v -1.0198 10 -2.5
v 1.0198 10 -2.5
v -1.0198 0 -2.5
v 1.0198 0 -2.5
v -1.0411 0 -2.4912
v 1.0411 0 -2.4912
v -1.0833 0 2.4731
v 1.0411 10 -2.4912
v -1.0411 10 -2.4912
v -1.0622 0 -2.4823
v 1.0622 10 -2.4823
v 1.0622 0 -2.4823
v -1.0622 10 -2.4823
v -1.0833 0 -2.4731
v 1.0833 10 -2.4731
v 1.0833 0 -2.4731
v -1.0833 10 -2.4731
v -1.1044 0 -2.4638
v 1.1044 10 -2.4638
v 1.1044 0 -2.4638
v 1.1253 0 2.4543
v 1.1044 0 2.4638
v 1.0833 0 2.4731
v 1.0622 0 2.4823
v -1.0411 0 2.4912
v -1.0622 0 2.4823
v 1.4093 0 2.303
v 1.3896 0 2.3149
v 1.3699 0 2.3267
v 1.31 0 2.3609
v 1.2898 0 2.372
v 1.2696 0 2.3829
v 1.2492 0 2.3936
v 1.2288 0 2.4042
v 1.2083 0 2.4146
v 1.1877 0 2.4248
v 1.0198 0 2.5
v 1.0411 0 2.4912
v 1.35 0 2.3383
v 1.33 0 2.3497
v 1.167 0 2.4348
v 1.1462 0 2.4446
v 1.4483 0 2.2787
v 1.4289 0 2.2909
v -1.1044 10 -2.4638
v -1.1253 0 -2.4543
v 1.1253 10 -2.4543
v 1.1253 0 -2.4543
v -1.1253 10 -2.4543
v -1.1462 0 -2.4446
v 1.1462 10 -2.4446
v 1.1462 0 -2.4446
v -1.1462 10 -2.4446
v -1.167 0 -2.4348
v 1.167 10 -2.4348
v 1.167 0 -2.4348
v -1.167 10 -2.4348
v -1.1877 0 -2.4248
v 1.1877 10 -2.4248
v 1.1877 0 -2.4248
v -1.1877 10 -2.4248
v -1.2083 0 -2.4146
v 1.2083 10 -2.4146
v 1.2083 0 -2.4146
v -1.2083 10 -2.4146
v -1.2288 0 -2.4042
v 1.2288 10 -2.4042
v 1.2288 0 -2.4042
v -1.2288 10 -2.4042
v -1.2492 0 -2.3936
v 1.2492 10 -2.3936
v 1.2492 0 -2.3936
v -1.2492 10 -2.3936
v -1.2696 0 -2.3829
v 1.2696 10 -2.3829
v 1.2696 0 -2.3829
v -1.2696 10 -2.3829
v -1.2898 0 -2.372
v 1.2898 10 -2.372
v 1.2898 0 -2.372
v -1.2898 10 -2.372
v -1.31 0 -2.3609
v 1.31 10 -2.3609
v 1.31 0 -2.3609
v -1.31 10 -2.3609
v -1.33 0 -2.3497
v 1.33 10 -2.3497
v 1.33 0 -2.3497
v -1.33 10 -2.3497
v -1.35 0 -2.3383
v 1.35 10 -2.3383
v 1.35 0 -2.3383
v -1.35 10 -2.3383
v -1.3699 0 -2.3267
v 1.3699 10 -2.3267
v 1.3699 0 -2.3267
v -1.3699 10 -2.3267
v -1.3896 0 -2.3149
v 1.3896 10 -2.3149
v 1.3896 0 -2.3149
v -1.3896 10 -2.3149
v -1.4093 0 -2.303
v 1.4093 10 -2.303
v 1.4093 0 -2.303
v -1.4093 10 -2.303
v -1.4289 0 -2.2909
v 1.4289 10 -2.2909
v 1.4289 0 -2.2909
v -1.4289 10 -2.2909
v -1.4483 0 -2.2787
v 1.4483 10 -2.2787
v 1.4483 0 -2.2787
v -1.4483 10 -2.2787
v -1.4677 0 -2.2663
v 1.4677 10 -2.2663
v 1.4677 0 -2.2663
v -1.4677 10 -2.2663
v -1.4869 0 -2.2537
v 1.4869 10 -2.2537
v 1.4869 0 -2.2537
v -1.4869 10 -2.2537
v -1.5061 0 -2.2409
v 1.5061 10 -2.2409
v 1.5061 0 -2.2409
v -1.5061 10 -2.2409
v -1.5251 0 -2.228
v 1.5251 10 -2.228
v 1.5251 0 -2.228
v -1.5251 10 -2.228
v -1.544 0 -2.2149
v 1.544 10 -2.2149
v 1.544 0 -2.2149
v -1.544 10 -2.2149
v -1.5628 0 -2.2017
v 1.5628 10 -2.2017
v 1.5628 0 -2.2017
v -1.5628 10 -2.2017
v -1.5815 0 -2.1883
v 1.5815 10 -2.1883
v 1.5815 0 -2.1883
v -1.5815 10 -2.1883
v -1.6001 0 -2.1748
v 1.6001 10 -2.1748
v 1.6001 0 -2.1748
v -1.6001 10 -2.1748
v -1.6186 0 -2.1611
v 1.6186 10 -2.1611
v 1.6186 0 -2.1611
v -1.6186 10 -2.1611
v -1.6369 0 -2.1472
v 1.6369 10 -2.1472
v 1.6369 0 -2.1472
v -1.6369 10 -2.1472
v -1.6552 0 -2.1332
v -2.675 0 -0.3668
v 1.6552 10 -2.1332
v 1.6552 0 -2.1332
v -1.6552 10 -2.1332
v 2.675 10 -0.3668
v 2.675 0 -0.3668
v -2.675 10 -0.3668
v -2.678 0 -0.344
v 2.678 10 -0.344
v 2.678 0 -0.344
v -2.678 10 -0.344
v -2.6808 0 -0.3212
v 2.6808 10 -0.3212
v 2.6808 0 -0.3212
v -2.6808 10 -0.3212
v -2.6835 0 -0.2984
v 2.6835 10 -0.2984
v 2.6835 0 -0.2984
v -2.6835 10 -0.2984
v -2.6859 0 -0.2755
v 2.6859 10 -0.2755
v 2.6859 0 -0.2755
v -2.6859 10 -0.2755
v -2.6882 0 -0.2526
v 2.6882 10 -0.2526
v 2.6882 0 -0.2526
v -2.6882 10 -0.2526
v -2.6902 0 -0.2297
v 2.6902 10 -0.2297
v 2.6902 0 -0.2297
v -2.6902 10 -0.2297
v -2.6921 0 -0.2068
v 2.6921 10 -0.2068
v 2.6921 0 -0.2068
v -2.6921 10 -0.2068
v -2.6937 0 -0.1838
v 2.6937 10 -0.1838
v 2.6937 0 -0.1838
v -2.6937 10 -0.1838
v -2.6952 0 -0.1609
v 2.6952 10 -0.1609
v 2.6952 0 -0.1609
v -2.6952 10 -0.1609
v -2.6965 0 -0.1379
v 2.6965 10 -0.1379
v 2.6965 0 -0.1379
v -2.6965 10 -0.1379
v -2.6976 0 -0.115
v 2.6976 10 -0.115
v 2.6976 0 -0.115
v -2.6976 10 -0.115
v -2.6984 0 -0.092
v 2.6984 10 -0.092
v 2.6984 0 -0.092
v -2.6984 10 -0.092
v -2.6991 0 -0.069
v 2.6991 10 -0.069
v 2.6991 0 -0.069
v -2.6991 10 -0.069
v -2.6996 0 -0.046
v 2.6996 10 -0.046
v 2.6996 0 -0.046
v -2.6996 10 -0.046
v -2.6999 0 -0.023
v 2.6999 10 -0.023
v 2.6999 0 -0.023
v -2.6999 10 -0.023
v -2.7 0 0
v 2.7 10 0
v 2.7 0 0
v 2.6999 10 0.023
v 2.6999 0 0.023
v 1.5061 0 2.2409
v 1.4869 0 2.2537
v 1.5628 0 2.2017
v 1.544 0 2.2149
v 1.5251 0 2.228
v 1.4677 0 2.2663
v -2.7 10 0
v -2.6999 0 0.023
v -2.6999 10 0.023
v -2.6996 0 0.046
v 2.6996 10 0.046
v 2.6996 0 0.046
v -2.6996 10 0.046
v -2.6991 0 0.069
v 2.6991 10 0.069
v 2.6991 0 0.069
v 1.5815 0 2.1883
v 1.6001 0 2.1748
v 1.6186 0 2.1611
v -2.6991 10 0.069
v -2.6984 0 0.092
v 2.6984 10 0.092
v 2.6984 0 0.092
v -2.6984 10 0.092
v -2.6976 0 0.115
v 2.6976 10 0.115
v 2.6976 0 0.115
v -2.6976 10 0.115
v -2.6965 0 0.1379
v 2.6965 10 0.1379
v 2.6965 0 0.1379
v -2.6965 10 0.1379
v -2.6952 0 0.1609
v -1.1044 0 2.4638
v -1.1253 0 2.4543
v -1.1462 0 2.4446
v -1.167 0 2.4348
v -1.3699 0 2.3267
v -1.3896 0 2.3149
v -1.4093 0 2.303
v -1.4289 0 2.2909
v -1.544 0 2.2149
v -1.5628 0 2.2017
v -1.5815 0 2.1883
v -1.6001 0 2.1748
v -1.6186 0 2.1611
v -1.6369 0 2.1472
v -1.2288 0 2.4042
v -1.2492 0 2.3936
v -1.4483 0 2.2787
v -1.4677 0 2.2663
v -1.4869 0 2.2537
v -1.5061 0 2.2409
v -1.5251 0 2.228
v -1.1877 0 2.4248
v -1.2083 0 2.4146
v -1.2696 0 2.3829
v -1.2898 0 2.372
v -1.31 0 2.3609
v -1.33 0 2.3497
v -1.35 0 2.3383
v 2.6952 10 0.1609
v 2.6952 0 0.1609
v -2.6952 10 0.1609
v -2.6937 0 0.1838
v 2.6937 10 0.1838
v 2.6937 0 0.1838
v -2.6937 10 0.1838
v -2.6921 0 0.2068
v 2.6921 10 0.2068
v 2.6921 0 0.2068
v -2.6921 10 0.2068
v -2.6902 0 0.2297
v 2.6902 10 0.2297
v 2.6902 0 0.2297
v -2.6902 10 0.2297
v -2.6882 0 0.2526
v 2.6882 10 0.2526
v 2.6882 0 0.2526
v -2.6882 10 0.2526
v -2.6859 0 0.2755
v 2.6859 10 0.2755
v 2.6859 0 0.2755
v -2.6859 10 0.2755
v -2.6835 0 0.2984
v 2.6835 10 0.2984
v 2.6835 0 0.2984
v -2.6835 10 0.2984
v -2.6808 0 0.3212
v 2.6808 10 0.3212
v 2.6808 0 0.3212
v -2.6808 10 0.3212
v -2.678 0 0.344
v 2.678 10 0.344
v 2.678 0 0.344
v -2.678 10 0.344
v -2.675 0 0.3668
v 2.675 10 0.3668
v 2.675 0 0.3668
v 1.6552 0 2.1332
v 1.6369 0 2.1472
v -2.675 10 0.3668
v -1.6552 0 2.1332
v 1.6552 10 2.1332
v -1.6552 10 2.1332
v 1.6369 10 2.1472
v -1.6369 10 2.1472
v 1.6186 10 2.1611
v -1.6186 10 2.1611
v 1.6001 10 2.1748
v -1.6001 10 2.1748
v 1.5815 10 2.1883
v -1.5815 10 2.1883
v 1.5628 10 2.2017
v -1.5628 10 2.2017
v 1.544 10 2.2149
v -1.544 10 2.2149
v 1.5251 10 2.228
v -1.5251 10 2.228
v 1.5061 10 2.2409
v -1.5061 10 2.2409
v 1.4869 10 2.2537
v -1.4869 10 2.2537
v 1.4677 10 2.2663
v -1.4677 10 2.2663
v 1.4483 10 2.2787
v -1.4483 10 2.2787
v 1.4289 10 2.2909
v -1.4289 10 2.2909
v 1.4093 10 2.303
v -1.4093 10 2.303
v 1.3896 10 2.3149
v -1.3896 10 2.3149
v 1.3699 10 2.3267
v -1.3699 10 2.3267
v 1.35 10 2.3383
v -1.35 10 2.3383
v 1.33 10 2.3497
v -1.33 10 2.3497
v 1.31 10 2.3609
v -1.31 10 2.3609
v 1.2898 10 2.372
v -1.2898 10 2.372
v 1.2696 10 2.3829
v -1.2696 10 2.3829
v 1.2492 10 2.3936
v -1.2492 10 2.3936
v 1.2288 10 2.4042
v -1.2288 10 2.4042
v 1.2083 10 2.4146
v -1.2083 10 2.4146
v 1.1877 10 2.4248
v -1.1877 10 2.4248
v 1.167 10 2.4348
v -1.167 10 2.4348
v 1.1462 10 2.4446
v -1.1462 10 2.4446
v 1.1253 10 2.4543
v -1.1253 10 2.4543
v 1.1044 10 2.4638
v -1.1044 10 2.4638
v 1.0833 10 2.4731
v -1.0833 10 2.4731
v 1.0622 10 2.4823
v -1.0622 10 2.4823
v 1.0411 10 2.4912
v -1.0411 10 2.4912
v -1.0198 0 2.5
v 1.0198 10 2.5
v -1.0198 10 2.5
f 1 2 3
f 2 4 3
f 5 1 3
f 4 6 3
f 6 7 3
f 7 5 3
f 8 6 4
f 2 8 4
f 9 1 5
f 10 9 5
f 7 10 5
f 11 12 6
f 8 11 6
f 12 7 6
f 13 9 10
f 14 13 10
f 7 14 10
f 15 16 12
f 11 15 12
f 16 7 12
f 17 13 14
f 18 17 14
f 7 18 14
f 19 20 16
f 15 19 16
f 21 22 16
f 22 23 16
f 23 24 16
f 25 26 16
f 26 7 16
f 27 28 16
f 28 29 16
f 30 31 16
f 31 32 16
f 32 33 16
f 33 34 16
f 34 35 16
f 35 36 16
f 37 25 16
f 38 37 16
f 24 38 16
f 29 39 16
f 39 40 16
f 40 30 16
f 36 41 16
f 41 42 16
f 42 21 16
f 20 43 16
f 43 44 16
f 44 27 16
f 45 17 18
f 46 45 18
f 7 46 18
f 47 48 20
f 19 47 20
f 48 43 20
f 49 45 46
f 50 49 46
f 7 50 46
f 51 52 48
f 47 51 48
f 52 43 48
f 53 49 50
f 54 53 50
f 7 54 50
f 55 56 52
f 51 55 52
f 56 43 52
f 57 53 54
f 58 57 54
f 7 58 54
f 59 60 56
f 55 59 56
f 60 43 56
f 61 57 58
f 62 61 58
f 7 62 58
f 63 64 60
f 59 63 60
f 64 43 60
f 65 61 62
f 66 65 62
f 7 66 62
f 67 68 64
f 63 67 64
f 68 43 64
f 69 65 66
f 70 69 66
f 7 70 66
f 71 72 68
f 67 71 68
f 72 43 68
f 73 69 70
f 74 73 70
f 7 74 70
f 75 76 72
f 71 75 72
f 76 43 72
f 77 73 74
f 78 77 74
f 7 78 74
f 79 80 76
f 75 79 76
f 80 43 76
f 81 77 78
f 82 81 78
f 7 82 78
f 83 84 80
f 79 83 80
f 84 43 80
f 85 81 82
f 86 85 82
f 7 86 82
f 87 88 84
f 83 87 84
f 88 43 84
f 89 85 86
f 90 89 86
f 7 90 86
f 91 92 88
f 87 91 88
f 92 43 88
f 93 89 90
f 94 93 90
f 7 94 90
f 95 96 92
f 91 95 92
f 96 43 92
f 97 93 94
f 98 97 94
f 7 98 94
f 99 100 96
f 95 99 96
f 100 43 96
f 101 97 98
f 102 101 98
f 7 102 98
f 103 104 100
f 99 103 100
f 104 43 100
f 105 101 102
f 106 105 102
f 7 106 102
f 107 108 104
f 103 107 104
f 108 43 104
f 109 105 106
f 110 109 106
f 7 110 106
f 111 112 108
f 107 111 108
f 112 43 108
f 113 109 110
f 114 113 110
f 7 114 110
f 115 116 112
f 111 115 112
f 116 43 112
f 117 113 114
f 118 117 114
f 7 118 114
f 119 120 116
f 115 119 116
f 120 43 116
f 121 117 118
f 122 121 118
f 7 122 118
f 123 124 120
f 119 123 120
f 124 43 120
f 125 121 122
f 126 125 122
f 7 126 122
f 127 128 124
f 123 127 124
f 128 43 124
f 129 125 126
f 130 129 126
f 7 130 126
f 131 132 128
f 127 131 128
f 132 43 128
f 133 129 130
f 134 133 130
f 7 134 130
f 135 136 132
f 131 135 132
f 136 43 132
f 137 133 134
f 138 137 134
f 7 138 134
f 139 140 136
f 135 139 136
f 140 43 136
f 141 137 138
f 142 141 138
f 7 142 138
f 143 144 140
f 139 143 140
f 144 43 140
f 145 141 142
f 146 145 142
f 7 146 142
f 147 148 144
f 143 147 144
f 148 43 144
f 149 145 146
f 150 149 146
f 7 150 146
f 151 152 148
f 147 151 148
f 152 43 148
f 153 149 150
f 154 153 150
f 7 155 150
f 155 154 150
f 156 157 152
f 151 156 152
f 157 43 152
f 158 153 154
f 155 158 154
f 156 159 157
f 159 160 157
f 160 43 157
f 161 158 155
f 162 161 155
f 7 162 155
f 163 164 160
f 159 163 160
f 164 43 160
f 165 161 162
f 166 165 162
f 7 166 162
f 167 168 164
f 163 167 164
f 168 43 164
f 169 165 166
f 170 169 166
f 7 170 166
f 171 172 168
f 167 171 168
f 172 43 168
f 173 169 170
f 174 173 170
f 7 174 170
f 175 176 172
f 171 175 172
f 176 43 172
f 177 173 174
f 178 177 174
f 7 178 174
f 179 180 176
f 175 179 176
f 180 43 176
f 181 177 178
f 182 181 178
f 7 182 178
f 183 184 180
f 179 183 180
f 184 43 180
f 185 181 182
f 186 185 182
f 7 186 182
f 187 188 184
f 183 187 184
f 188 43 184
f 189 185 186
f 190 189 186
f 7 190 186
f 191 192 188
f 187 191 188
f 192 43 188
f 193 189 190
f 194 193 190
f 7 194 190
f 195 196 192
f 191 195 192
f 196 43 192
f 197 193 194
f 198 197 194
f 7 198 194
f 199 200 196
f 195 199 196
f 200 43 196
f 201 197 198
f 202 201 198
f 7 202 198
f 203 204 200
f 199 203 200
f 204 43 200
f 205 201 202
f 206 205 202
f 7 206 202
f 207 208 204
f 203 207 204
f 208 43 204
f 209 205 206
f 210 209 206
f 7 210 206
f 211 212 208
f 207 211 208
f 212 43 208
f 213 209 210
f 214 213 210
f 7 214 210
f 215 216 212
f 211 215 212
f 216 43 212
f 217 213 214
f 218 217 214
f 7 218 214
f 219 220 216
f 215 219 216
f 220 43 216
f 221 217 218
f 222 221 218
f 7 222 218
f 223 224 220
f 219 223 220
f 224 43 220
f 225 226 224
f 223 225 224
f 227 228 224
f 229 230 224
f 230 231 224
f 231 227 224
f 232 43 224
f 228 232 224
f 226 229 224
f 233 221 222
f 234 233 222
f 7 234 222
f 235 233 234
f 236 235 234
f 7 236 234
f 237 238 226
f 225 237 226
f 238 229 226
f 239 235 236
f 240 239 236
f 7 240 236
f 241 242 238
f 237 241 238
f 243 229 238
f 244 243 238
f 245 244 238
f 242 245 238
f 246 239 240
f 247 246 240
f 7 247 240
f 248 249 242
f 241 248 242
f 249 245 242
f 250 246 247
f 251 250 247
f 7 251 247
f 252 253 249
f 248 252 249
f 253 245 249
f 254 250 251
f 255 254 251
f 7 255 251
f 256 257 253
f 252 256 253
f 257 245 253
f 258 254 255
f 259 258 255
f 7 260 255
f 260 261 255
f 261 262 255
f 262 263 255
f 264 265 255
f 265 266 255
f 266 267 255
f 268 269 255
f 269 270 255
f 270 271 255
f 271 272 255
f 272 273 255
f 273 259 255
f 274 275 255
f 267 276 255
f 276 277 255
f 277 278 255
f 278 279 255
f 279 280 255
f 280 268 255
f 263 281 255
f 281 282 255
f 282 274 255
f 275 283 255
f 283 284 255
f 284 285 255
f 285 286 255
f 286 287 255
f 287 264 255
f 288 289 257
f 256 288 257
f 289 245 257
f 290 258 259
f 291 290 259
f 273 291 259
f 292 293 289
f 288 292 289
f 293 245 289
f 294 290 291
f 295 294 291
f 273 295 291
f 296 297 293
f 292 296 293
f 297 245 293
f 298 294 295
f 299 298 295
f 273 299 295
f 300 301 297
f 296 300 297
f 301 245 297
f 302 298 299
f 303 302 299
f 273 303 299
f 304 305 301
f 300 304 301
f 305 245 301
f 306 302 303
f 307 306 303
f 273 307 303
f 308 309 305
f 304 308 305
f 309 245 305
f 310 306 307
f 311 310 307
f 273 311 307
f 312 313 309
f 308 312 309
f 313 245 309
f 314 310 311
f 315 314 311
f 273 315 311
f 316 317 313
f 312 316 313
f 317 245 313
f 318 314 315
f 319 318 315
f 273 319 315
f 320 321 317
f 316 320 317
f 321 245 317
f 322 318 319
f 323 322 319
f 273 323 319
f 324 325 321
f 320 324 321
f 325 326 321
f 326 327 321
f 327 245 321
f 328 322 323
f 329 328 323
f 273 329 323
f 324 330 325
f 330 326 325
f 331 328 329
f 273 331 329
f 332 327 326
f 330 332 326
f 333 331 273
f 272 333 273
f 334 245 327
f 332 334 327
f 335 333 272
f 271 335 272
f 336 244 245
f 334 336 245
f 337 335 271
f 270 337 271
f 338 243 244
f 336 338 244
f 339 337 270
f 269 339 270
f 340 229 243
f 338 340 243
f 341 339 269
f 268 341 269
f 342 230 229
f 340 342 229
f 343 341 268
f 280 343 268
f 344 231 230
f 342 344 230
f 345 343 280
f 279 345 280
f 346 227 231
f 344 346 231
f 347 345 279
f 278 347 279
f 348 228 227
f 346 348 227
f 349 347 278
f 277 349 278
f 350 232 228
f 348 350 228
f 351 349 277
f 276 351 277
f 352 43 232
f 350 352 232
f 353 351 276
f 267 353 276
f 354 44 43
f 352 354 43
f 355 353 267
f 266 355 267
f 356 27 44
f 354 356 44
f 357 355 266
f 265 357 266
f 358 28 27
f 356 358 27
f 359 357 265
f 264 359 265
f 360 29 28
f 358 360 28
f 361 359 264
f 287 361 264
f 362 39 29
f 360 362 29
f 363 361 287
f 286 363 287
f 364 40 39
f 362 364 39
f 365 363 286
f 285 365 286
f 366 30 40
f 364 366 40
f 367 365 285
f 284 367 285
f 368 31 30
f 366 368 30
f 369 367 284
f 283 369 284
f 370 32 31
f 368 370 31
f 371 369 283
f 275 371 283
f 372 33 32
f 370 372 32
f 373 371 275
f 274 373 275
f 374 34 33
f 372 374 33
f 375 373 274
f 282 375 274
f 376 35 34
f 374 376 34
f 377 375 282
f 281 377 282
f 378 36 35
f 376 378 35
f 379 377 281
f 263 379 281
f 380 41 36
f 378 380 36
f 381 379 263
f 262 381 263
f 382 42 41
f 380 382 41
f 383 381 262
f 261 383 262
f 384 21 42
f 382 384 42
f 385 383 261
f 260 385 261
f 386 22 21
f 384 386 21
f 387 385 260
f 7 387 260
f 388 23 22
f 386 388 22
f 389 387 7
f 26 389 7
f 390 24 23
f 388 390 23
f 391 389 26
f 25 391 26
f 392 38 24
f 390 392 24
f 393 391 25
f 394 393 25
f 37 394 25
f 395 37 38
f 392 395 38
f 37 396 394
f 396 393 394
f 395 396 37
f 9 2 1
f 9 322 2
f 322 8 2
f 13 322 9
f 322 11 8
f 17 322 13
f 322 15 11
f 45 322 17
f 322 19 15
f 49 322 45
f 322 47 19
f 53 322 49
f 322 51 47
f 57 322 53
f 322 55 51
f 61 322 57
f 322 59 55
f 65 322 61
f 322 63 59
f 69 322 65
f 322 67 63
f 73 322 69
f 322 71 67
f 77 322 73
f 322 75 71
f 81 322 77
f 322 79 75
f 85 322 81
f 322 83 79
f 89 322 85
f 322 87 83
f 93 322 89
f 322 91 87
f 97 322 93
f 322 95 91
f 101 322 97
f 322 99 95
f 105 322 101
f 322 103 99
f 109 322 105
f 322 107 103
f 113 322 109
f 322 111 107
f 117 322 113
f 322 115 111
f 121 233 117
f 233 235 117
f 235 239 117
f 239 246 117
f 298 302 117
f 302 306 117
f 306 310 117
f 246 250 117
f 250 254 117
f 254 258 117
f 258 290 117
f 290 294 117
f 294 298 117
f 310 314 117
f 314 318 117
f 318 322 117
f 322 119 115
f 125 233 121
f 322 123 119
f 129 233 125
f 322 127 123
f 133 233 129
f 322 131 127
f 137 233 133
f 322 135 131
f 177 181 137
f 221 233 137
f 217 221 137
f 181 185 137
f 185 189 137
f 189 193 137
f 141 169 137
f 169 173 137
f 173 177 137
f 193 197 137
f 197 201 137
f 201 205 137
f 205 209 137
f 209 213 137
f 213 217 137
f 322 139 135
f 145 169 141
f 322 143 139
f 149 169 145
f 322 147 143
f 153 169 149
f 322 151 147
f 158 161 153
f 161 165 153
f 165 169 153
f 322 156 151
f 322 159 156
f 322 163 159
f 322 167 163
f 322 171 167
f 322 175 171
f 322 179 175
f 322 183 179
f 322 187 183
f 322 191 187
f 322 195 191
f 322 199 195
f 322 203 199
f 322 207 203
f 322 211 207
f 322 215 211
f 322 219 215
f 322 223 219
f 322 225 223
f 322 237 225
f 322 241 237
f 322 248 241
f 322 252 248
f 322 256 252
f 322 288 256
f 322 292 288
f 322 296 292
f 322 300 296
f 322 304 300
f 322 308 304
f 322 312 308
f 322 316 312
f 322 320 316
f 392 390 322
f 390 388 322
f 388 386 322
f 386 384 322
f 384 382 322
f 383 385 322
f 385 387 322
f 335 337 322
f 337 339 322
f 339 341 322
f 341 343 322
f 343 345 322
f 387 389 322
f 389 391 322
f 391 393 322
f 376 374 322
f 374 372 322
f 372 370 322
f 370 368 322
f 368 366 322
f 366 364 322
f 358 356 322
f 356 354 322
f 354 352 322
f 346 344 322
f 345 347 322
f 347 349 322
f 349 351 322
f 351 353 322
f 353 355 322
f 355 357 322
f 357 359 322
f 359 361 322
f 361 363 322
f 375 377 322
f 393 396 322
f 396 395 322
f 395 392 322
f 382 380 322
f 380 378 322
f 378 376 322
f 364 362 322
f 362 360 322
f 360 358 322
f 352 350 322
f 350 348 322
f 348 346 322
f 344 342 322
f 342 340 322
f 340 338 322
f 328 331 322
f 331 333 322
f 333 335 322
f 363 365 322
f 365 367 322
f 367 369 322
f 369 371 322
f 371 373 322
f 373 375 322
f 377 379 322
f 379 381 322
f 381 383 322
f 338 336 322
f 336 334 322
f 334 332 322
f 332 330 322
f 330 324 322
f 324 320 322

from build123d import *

# Parameters (mm, degrees)
BOSS_EXTRUDE1_DEPTH = 10


with BuildPart() as part:
    # Sketch1 → Boss-Extrude1 (new body)
    with BuildSketch(Plane(origin=(0, 0, 0), x_dir=(1, 0, 0), z_dir=(0, 1, 0))):
        with BuildLine():
            ThreePointArc((2.7, 0), (2.693734095, 0.183838592), (2.674965461, 0.366823913))
            Line((2.674965461, 0.366823913), (1.655161558, 2.133176087))
            ThreePointArc((1.655161558, 2.133176087), (1.35, 2.33826859), (1.019803903, 2.5))
            Line((1.019803903, 2.5), (-1.019803903, 2.5))
            ThreePointArc((-1.019803903, 2.5), (-1.35, 2.33826859), (-1.655161558, 2.133176087))
            Line((-1.655161558, 2.133176087), (-2.674965461, 0.366823913))
            ThreePointArc((-2.674965461, 0.366823913), (-2.7, 0), (-2.674965461, -0.366823913))
            Line((-2.674965461, -0.366823913), (-1.655161558, -2.133176087))
            ThreePointArc((-1.655161558, -2.133176087), (-1.35, -2.33826859), (-1.019803903, -2.5))
            Line((-1.019803903, -2.5), (1.019803903, -2.5))
            ThreePointArc((1.019803903, -2.5), (1.35, -2.33826859), (1.655161558, -2.133176087))
            Line((1.655161558, -2.133176087), (2.674965461, -0.366823913))
            ThreePointArc((2.674965461, -0.366823913), (2.693734095, -0.183838592), (2.7, 0))
        make_face()
    extrude(amount=BOSS_EXTRUDE1_DEPTH)


solid = part.part
